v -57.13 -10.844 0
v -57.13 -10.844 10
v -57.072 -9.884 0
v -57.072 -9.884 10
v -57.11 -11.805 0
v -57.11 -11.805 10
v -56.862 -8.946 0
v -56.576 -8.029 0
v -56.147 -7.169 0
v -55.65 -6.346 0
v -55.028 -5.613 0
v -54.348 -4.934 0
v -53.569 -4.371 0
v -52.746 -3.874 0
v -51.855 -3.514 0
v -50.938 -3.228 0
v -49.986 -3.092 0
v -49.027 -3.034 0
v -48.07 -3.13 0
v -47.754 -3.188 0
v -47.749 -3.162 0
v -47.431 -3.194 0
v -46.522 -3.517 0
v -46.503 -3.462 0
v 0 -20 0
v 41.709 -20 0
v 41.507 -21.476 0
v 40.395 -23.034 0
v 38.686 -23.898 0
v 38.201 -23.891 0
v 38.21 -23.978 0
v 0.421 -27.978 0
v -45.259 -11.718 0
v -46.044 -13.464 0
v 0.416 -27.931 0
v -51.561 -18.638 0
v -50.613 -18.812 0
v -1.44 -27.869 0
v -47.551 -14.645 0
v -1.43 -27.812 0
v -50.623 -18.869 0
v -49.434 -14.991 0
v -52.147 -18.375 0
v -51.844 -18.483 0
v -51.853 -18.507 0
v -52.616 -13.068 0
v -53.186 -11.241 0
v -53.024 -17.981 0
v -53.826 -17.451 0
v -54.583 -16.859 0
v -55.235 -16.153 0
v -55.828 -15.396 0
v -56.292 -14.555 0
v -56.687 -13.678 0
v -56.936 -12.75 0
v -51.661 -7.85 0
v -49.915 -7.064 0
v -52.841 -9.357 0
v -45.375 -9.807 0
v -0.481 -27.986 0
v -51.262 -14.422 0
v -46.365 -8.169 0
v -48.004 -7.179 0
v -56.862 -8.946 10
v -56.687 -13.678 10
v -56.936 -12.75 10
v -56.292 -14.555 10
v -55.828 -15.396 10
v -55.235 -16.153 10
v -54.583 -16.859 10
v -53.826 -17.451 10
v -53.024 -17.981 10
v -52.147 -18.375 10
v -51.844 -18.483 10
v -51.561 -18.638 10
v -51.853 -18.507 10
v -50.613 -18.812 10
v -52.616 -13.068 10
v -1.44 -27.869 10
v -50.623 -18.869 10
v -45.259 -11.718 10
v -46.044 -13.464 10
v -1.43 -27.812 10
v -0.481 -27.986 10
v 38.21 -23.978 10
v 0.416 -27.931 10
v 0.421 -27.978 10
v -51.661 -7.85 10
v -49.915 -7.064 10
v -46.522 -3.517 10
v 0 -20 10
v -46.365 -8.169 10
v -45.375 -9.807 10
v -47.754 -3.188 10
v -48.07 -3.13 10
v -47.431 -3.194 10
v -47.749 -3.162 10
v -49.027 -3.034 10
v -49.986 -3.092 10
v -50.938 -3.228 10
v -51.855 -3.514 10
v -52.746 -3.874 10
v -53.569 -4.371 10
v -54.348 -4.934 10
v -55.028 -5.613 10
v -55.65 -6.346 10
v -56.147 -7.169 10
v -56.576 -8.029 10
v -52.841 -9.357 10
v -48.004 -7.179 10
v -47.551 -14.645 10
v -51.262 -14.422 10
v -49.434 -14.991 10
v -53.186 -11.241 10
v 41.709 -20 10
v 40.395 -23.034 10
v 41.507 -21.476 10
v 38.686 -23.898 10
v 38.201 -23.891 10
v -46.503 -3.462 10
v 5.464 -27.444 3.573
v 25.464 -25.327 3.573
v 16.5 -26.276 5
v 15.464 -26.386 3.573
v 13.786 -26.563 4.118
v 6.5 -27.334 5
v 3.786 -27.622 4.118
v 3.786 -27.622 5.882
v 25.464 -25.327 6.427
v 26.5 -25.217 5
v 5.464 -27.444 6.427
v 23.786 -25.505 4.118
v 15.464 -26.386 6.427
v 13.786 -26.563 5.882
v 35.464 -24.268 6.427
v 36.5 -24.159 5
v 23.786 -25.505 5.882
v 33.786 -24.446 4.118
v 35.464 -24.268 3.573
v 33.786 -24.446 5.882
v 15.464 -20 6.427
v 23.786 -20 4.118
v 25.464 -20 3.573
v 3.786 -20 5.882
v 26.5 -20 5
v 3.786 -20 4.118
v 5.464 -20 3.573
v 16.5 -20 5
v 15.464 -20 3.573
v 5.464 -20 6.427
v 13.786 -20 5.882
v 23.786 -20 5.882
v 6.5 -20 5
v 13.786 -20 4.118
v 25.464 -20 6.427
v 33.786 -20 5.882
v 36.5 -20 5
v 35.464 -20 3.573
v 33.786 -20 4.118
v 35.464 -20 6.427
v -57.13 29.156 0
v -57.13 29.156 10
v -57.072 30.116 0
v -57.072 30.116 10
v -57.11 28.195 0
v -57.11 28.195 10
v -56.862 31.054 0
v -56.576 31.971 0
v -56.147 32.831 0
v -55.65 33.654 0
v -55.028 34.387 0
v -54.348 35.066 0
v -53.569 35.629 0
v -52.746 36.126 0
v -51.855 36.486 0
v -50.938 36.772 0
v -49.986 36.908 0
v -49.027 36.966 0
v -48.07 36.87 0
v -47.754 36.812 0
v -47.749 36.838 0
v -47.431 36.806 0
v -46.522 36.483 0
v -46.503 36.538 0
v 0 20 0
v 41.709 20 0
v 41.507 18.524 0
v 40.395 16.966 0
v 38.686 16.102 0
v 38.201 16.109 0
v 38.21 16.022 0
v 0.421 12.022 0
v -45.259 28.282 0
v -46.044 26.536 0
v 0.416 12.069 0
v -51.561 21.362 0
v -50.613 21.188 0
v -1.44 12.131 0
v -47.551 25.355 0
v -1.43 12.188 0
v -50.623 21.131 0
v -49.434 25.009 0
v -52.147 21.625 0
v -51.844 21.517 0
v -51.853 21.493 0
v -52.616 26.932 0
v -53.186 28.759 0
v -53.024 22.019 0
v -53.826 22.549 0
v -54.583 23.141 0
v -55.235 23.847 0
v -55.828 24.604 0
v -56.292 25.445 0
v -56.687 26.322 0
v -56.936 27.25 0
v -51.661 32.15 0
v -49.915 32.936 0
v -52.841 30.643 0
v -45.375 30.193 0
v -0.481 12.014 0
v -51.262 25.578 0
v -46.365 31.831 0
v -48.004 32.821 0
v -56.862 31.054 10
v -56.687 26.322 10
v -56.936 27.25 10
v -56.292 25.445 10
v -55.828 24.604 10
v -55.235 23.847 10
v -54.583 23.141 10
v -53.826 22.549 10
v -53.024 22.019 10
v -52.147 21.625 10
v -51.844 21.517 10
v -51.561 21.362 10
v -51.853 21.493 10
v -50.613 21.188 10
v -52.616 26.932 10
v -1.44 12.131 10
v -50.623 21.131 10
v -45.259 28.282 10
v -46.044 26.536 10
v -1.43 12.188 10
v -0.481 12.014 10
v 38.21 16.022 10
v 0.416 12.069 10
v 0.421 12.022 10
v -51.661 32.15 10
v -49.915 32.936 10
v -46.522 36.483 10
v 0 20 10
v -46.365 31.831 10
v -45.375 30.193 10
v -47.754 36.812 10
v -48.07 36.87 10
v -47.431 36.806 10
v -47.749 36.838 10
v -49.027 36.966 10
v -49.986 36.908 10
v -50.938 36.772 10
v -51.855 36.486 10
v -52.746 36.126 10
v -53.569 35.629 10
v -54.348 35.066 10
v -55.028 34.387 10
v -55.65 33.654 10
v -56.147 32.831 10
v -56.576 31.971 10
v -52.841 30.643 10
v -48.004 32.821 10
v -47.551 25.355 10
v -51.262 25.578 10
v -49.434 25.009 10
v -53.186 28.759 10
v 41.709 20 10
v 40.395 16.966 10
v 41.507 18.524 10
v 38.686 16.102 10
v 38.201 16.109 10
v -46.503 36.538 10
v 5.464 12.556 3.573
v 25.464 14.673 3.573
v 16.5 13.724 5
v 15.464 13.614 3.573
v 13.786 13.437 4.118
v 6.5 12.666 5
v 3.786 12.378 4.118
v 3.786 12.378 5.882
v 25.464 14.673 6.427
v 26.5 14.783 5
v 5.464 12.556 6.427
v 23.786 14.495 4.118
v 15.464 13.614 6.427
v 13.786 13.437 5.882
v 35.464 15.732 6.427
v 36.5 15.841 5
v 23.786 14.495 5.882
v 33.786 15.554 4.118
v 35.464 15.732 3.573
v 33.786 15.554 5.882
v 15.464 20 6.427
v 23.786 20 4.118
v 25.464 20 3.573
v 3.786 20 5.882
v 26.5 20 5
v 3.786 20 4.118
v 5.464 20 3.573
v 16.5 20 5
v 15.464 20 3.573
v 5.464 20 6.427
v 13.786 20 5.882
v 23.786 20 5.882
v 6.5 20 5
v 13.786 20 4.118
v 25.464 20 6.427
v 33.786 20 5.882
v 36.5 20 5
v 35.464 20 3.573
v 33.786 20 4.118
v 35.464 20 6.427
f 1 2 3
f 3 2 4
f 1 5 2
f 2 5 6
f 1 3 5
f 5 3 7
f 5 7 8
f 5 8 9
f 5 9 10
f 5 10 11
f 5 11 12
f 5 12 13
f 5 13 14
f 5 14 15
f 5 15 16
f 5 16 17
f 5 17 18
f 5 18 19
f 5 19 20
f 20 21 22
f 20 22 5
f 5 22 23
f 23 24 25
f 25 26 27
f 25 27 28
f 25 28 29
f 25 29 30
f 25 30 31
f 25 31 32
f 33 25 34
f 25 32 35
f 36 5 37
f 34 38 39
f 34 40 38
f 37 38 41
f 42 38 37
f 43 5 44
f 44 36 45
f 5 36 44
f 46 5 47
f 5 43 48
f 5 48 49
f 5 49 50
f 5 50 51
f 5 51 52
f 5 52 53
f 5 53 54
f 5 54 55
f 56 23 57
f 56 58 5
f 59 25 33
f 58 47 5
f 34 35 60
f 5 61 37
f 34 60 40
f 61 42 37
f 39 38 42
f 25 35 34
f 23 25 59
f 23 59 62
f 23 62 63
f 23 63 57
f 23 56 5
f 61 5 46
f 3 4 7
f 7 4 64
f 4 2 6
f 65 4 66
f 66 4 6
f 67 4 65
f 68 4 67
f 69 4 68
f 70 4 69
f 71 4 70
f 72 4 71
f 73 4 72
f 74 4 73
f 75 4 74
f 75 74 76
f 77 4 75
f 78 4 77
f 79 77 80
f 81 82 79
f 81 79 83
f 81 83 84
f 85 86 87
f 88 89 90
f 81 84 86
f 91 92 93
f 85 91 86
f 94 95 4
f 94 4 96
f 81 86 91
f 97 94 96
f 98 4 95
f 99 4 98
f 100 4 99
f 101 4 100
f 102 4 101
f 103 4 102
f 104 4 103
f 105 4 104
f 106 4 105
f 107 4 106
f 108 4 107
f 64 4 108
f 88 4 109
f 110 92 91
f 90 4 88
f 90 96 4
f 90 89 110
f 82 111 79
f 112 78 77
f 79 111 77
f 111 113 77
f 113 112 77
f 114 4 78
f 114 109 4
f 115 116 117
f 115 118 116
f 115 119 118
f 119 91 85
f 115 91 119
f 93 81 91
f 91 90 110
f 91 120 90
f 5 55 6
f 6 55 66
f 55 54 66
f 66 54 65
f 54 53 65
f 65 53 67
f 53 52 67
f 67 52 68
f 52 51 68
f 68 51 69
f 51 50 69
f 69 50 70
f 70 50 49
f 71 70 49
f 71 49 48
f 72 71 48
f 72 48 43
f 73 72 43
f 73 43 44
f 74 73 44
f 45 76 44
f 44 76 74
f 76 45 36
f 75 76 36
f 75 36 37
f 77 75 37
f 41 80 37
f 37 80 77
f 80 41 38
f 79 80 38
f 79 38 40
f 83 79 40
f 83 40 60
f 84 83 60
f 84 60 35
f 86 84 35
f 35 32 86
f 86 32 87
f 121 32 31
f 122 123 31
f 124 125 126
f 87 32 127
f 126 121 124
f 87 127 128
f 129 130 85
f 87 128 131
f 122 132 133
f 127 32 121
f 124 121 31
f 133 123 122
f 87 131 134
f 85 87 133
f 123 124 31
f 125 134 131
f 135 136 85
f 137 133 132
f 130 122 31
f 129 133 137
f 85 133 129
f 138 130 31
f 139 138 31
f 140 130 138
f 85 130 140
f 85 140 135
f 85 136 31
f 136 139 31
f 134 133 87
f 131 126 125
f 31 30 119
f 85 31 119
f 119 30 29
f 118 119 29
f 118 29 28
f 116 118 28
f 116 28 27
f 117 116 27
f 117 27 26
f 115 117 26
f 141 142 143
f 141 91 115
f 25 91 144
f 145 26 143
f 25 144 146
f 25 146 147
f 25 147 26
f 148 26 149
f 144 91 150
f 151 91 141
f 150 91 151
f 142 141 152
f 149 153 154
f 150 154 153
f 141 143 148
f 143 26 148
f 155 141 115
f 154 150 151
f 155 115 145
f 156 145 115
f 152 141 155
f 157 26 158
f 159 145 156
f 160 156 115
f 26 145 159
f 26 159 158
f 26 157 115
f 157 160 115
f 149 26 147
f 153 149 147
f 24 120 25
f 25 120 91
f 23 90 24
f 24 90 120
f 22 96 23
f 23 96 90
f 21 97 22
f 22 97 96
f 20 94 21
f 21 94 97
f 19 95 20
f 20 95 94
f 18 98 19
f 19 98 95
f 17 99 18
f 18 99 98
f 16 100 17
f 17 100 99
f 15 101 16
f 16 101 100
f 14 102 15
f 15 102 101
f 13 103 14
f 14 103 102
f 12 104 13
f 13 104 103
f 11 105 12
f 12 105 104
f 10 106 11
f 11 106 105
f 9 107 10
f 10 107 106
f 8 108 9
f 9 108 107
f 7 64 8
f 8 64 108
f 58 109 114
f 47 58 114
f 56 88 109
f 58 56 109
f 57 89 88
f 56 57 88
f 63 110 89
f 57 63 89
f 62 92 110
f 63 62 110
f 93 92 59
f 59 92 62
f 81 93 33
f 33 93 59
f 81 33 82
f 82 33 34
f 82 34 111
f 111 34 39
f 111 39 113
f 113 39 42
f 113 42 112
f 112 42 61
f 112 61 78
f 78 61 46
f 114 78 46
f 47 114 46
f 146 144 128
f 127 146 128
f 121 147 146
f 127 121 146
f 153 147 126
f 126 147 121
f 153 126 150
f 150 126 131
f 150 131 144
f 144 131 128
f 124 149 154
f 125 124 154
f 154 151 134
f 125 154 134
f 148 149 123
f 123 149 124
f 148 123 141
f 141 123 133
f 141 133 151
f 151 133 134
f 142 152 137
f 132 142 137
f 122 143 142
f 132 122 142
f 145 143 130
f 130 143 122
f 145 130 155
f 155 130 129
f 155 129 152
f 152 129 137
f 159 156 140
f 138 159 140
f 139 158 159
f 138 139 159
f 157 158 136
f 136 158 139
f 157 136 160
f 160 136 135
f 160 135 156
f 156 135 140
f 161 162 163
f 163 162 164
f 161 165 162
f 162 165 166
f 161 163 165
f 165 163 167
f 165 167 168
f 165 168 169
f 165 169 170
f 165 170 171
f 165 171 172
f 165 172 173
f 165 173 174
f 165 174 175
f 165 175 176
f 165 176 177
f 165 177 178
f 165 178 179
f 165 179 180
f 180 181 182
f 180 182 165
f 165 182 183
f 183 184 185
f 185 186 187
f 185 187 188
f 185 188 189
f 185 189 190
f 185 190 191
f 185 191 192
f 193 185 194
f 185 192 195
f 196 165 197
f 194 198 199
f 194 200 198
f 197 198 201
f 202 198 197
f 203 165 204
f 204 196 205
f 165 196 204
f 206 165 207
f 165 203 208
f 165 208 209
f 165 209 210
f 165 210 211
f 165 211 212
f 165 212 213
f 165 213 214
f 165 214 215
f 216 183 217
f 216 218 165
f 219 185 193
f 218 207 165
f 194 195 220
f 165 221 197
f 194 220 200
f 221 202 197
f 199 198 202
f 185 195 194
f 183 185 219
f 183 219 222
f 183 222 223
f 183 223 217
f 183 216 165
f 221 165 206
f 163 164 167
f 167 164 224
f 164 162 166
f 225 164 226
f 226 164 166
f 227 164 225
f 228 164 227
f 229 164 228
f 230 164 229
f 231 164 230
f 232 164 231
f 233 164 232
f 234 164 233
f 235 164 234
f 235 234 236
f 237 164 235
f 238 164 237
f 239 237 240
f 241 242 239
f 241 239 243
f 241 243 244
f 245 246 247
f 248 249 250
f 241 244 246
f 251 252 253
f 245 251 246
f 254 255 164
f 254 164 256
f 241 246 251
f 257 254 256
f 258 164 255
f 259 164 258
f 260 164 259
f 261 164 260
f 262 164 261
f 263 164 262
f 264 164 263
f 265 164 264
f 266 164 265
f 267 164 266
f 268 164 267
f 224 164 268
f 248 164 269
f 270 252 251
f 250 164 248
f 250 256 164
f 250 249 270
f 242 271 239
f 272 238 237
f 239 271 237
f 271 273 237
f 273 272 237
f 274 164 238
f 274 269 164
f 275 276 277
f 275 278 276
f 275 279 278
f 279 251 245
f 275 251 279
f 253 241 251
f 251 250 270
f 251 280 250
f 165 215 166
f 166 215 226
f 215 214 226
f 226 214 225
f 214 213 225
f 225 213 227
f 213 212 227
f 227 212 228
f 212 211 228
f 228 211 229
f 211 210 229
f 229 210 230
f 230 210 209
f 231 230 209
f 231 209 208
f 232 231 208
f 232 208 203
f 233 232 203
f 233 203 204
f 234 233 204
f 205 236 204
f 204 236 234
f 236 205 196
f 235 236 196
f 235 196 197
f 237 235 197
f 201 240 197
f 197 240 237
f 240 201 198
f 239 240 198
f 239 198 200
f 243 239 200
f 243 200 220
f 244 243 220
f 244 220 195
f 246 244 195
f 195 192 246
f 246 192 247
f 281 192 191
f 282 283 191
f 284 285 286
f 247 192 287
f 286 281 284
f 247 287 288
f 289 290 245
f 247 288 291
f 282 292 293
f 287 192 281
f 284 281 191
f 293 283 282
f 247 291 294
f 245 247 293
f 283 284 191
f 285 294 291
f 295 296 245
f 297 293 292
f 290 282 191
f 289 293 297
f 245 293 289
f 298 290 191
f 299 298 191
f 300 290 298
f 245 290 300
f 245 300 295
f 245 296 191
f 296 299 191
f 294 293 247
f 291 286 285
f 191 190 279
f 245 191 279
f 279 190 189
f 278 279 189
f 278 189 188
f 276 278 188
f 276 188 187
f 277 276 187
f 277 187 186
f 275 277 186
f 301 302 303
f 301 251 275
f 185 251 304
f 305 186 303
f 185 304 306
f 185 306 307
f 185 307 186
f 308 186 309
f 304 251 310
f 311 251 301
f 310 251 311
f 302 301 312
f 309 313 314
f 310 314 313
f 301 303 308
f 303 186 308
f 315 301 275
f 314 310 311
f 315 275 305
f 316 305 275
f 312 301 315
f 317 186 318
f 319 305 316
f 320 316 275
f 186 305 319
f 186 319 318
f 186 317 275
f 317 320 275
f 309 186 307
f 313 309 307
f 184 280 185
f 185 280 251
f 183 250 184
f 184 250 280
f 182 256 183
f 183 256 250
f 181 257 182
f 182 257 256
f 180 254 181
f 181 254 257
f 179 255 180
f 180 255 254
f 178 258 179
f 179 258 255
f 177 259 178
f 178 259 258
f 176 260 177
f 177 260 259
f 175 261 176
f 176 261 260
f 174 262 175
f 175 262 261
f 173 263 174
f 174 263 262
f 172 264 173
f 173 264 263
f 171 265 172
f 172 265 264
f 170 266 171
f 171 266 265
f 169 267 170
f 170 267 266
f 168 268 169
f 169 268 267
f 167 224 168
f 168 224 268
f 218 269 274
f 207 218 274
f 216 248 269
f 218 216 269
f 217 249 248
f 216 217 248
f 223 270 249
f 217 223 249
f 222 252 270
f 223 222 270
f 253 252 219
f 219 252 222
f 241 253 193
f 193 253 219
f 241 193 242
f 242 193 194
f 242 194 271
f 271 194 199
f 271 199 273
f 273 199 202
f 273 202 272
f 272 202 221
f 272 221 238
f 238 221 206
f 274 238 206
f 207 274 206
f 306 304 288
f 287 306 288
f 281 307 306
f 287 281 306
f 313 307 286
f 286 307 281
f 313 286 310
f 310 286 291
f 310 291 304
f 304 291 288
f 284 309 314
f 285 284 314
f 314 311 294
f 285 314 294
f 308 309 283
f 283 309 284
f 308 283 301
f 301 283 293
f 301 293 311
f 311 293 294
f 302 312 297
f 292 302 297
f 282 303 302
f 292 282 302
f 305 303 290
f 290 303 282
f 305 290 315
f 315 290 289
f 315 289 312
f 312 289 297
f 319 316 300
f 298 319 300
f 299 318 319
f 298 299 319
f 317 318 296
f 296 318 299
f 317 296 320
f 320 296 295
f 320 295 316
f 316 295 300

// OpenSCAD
delta = 0.01;

module RoundedEnd(l,r,h)
{
    union()
    {
      translate([0,0,0]) cylinder(r=r,h=h);
      translate([0,-r,0]) cube(size=[l+r,2*r,h]);
    }
}

module RoundedEnds(l,r,h)
{
    union()
    {
      translate([0,0,0]) cylinder(r=r,h=h);
      translate([l,0,0]) cylinder(r=r,h=h);
      translate([0,-r,0]) cube(size=[l,2*r,h]);
    }
}

module TaperedRoundedEnds(l,r,h)
{
    intersection()
    {
        RoundedEnds(l,r,h);
        rotate(asin(r/l), [0,0,-1]) RoundedEnd(l,r,h);
    }
}


module ElectronicsBracket(length1, length2, holedia, offset, thickness, 
                          mountholes, mountholedia)
{
    difference()
    {
        union()
        {
            rotate(asin(offset/length1), [0,0,-1])
            {
                translate([-length1,0,0])
                {
                    difference()
                    {
                        TaperedRoundedEnds(length1, holedia, thickness);
                        translate([-delta,0,0]) cylinder(r=holedia/2,h=thickness+2*delta);
                    }
                }
            }
            translate([0,-holedia/2,0])
            {
                rotate(asin(holedia/2/length2),[0,0,1])
                {
                    TaperedRoundedEnds(length2, holedia/2, thickness);
                }
            }
        }
        for (x = mountholes)
        {
            # translate([x,delta,thickness/2]) 
                rotate([90,0,0]) 
                    cylinder(r=mountholedia/2,h=holedia*2);
        }
    }
}

for (y = [-20,20])
{
    translate([0,y,0]) ElectronicsBracket(50, 38, 8, 9, 10, [5,15,25,35], 3);
}
